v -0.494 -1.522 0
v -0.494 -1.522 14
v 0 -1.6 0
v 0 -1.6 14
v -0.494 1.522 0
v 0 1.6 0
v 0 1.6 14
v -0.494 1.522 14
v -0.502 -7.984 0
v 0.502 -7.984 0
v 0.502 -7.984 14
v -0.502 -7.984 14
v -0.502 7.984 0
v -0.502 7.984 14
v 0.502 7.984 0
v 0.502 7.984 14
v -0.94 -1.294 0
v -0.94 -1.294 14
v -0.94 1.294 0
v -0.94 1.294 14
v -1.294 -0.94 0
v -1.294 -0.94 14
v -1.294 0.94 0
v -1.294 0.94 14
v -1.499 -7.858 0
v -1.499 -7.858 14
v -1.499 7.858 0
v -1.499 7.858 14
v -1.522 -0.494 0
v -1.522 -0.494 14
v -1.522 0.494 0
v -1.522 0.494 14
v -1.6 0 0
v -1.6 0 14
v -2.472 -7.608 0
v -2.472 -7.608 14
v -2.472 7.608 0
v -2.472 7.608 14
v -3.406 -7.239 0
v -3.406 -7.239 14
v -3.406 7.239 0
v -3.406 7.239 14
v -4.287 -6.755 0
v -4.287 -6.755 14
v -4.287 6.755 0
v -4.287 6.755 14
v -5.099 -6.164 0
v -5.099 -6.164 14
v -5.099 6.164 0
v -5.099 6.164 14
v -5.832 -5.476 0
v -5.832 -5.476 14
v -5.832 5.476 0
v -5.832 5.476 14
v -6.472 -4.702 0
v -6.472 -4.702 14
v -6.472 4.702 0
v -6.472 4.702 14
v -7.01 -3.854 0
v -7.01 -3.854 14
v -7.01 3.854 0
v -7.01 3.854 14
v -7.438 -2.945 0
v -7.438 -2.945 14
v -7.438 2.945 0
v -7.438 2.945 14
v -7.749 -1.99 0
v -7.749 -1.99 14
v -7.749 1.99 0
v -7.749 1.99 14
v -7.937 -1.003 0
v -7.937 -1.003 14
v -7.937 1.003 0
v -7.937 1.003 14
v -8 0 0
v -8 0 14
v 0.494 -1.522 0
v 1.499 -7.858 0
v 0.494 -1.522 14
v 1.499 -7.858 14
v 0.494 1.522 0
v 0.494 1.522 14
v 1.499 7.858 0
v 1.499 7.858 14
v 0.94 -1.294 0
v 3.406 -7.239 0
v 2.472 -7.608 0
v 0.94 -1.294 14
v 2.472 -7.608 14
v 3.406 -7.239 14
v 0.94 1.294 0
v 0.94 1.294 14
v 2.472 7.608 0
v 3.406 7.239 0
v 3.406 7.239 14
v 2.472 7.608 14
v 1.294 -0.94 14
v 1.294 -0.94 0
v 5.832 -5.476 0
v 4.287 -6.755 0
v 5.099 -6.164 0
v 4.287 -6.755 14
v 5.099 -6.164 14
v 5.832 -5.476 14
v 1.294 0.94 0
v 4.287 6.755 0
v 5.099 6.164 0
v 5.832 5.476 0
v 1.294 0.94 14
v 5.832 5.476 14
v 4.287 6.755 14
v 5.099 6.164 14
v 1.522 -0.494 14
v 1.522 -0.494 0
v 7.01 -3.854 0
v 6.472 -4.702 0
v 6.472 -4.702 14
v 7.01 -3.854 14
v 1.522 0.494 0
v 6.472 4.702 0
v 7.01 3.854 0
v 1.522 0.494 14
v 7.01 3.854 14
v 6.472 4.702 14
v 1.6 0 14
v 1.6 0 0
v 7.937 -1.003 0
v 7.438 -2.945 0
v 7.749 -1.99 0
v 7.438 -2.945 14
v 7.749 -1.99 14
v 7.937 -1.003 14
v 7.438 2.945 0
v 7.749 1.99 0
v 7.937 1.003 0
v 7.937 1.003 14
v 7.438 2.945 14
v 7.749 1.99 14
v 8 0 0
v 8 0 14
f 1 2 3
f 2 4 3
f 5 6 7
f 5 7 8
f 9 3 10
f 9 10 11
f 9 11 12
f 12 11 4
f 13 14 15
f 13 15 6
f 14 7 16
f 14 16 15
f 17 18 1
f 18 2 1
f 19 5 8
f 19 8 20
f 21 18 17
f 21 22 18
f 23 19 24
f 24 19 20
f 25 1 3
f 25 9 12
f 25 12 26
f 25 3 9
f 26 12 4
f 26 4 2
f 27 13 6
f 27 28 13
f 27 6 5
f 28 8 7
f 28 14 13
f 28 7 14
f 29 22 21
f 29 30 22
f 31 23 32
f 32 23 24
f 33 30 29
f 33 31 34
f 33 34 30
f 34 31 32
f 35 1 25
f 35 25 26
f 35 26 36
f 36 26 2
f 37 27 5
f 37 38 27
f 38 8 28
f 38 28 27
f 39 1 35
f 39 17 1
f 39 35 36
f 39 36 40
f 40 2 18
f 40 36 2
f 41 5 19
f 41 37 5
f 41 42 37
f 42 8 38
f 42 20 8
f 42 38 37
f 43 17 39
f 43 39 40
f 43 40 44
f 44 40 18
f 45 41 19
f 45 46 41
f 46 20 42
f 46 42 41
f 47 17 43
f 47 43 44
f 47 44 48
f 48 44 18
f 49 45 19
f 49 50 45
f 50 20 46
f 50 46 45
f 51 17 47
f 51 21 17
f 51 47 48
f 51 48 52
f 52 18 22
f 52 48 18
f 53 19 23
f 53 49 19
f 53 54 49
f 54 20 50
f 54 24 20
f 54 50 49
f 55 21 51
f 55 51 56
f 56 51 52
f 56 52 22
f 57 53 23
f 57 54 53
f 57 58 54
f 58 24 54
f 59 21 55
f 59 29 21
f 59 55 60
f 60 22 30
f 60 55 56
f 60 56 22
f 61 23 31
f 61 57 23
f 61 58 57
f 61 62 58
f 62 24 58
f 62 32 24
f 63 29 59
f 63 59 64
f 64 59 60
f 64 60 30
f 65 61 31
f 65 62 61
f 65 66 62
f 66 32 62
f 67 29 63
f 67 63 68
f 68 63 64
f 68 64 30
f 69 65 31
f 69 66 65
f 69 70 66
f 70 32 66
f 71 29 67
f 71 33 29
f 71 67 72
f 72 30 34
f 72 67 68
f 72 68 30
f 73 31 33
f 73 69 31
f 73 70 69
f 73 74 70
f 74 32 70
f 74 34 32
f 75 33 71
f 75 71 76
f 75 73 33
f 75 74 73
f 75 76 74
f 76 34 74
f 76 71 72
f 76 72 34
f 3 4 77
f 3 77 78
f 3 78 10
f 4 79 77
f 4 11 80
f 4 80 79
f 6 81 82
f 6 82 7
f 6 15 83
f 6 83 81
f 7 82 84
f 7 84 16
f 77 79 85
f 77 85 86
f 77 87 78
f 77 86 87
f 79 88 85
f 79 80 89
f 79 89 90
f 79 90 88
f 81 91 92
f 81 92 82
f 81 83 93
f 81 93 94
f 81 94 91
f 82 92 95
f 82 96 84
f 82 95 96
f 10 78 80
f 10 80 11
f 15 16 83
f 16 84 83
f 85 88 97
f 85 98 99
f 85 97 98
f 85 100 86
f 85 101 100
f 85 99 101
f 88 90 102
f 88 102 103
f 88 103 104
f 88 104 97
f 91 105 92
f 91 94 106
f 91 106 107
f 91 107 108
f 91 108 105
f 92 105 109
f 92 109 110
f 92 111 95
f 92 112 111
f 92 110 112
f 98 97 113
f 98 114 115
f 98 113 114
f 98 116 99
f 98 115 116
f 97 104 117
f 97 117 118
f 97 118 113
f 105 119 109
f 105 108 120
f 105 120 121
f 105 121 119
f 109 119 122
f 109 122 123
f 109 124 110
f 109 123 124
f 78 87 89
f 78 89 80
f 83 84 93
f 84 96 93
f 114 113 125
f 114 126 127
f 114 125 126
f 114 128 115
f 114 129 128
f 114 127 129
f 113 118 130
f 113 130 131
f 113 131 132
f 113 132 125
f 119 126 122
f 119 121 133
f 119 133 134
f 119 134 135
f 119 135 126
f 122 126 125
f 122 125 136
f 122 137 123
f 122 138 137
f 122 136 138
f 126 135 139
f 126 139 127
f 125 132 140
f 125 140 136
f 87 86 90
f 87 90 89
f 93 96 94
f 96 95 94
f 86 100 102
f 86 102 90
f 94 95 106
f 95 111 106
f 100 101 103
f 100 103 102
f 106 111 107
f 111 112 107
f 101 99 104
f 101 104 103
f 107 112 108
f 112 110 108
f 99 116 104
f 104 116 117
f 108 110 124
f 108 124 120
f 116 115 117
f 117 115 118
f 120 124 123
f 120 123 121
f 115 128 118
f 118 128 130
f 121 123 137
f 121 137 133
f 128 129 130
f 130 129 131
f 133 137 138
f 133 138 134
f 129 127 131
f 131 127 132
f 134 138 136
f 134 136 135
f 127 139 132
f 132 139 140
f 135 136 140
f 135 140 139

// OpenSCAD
// file: ../Parameters.scad
//Main tube diameter - hole [mm]
main_tube_outer_diameter = 25.4;
main_tube_inner_diameter = 23.5;

//Tube for undercarriage - hole [mm]
tube_for_undercarriage_outer_diameter = 10.6;
tube_for_undercarriage_inner_diameter = 6;
global_clearance = 0.5;


//umístění podvozkových trubek

second_undercarriage_hole = main_tube_outer_diameter*2 + main_tube_outer_diameter/5 + main_tube_outer_diameter/2 + 170 + 160;

// Parameters of cube couplings
coupling_wall_thickness = main_tube_outer_diameter/5;  //width of coupling walls 
thickness_between_tubes = main_tube_outer_diameter/10;    // minimum distance between tubes in couplings

coupling_wall_thickness_undercarriage = tube_for_undercarriage_outer_diameter/3;
thickness_between_tubes_undercarriage = tube_for_undercarriage_outer_diameter/10;

//Screw diameter and nut for M4 [mm]
M4_screw_diameter=4.5;
Nut_height_M4 = 3.2;
Nut_diameter_M4 = 7.86;


//Screw diameter and nut for M3 [mm]
M3_screw_diameter = 3.2;
Nut_height_M3 = 1.7;	
Nut_diameter_M3 = 6.6; 


//The tube for help
Help_main_tube_outer = 25;
Help_main_tube_inner = 23; 
Help_tube_for_undercarriage_outer = 10;
Help_tube_for_undercarriage_inner = 5;


//main hull parameters

hull_drop_length = 580;
hull_wall_thickness = 0.8;
hull_y_size = 120;
hull_z_size = 150;
hull_x_size = 580;
hull_corner_radius = 4;
hull_airfoil_thickness= 35;  // thickness of drop generating airfoil in percent of lenght.
hull_scale_x = 1;
hull_scale_y = 1.5;
hull_scale_z = 1.5;

main_pilon_position = 170+68;
cover_pilon_position = 180;
height_of_vertical_tube = 275; //278mm je změřená délka trubky. 

ribbon_width = 5; // šířka vyztužovacích lemů. 

// šířka otvoru v přední části kapoty pro držák motoru.
width_of_engine_holder = 63;

//Top Cover Division - dělení horního krytu pro tisk
top_cover_division = [0, 50, 150, 280, 410, hull_x_size]; // upraveny seznam tak, aby deleni začinalo od nuly, což umožňí úplně automatické rozdělení.

//Bottom Cover Division - dělení dolního krytu pro tisk
bottom_cover_division = [0,100,250,365, 470, hull_x_size];
// zkrácená část pro payload pro testovací tisk
//bottom_cover_division = [0,200,250,365, 470, hull_x_size];

//Base Divison - dělení podložky
base_division = [0,140,280,410, hull_x_size];

//Cover pilon division - na výšku (v ose Z)
cover_pilon_division = [0,170,height_of_vertical_tube + main_tube_outer_diameter + coupling_wall_thickness];

//pozice šroubů
	//horní kryt
top_screw_position = [0, (top_cover_division[0] + top_cover_division[1])/4, (top_cover_division[2] - top_cover_division[1])/2 + top_cover_division[1], (top_cover_division[3] - top_cover_division[2])/2 + top_cover_division[2],(top_cover_division[4] - top_cover_division[3])/2 + top_cover_division[3],(top_cover_division[5] - top_cover_division[4])/2 + top_cover_division[4] - 20];
	//spodní kryt
bottom_screw_position = [0,(bottom_cover_division[0] + bottom_cover_division[1])/15 + 5, bottom_cover_division[1]/1.1, + bottom_cover_division[3], bottom_cover_division[3] + bottom_cover_division[1]/2, bottom_cover_division[4] - 6*global_clearance, bottom_cover_division[4] + bottom_cover_division[1]/2.5];




//šířka zámků
lock_width = 10;

//délka zámků
lock_length = 3;


//accumulator
//základní rozměry akumulátoru
width_of_accumulator = 129.4;//45+1;
depth_of_accumulator = 40.61;
height_of_accumulator = 43.65;
//Zapuštění akumulátoru
sink_of_accumulator = 5; //main_tube_outer_diameter/5 - Nut_height_M3*1.5;

//tloušťka hrany spojky
accumulator_holder_width = 18; 
accumulator_holder_thickness = 10; 

//posunutí akumálátoru na podložce
move_of_accumulator = 165;   // pozice akumulátoru (ovlivňuje těžiště)


////////////////
// Senzory
///////////////////

//opticalFlow
    width_optical_flow_senzor = 45.5;
    depth_optical_flow_senzor = 6;
    height_optical_flow_senzor = 35;
    sink_of_optical_flow_senzor = depth_optical_flow_senzor - 5; 
    M3_optical_flow_senzor_Z = 30.4;
    M3_optical_flow_senzor_X = 24;
    M3_optical_flow_senzor_Z_alone = 9.1;
    M3_optical_flow_senzor_X_alone = 16.7;
// main file
module 666_1233(){

    thickness = 12; 

    difference(){
        cylinder (h = thickness + 2, d = 5*M3_screw_diameter, $fn = 50);

        cylinder (h = thickness + 2, d = M3_screw_diameter, $fn = 20);
    }
}
666_1233();

include <../Parameters.scad>
